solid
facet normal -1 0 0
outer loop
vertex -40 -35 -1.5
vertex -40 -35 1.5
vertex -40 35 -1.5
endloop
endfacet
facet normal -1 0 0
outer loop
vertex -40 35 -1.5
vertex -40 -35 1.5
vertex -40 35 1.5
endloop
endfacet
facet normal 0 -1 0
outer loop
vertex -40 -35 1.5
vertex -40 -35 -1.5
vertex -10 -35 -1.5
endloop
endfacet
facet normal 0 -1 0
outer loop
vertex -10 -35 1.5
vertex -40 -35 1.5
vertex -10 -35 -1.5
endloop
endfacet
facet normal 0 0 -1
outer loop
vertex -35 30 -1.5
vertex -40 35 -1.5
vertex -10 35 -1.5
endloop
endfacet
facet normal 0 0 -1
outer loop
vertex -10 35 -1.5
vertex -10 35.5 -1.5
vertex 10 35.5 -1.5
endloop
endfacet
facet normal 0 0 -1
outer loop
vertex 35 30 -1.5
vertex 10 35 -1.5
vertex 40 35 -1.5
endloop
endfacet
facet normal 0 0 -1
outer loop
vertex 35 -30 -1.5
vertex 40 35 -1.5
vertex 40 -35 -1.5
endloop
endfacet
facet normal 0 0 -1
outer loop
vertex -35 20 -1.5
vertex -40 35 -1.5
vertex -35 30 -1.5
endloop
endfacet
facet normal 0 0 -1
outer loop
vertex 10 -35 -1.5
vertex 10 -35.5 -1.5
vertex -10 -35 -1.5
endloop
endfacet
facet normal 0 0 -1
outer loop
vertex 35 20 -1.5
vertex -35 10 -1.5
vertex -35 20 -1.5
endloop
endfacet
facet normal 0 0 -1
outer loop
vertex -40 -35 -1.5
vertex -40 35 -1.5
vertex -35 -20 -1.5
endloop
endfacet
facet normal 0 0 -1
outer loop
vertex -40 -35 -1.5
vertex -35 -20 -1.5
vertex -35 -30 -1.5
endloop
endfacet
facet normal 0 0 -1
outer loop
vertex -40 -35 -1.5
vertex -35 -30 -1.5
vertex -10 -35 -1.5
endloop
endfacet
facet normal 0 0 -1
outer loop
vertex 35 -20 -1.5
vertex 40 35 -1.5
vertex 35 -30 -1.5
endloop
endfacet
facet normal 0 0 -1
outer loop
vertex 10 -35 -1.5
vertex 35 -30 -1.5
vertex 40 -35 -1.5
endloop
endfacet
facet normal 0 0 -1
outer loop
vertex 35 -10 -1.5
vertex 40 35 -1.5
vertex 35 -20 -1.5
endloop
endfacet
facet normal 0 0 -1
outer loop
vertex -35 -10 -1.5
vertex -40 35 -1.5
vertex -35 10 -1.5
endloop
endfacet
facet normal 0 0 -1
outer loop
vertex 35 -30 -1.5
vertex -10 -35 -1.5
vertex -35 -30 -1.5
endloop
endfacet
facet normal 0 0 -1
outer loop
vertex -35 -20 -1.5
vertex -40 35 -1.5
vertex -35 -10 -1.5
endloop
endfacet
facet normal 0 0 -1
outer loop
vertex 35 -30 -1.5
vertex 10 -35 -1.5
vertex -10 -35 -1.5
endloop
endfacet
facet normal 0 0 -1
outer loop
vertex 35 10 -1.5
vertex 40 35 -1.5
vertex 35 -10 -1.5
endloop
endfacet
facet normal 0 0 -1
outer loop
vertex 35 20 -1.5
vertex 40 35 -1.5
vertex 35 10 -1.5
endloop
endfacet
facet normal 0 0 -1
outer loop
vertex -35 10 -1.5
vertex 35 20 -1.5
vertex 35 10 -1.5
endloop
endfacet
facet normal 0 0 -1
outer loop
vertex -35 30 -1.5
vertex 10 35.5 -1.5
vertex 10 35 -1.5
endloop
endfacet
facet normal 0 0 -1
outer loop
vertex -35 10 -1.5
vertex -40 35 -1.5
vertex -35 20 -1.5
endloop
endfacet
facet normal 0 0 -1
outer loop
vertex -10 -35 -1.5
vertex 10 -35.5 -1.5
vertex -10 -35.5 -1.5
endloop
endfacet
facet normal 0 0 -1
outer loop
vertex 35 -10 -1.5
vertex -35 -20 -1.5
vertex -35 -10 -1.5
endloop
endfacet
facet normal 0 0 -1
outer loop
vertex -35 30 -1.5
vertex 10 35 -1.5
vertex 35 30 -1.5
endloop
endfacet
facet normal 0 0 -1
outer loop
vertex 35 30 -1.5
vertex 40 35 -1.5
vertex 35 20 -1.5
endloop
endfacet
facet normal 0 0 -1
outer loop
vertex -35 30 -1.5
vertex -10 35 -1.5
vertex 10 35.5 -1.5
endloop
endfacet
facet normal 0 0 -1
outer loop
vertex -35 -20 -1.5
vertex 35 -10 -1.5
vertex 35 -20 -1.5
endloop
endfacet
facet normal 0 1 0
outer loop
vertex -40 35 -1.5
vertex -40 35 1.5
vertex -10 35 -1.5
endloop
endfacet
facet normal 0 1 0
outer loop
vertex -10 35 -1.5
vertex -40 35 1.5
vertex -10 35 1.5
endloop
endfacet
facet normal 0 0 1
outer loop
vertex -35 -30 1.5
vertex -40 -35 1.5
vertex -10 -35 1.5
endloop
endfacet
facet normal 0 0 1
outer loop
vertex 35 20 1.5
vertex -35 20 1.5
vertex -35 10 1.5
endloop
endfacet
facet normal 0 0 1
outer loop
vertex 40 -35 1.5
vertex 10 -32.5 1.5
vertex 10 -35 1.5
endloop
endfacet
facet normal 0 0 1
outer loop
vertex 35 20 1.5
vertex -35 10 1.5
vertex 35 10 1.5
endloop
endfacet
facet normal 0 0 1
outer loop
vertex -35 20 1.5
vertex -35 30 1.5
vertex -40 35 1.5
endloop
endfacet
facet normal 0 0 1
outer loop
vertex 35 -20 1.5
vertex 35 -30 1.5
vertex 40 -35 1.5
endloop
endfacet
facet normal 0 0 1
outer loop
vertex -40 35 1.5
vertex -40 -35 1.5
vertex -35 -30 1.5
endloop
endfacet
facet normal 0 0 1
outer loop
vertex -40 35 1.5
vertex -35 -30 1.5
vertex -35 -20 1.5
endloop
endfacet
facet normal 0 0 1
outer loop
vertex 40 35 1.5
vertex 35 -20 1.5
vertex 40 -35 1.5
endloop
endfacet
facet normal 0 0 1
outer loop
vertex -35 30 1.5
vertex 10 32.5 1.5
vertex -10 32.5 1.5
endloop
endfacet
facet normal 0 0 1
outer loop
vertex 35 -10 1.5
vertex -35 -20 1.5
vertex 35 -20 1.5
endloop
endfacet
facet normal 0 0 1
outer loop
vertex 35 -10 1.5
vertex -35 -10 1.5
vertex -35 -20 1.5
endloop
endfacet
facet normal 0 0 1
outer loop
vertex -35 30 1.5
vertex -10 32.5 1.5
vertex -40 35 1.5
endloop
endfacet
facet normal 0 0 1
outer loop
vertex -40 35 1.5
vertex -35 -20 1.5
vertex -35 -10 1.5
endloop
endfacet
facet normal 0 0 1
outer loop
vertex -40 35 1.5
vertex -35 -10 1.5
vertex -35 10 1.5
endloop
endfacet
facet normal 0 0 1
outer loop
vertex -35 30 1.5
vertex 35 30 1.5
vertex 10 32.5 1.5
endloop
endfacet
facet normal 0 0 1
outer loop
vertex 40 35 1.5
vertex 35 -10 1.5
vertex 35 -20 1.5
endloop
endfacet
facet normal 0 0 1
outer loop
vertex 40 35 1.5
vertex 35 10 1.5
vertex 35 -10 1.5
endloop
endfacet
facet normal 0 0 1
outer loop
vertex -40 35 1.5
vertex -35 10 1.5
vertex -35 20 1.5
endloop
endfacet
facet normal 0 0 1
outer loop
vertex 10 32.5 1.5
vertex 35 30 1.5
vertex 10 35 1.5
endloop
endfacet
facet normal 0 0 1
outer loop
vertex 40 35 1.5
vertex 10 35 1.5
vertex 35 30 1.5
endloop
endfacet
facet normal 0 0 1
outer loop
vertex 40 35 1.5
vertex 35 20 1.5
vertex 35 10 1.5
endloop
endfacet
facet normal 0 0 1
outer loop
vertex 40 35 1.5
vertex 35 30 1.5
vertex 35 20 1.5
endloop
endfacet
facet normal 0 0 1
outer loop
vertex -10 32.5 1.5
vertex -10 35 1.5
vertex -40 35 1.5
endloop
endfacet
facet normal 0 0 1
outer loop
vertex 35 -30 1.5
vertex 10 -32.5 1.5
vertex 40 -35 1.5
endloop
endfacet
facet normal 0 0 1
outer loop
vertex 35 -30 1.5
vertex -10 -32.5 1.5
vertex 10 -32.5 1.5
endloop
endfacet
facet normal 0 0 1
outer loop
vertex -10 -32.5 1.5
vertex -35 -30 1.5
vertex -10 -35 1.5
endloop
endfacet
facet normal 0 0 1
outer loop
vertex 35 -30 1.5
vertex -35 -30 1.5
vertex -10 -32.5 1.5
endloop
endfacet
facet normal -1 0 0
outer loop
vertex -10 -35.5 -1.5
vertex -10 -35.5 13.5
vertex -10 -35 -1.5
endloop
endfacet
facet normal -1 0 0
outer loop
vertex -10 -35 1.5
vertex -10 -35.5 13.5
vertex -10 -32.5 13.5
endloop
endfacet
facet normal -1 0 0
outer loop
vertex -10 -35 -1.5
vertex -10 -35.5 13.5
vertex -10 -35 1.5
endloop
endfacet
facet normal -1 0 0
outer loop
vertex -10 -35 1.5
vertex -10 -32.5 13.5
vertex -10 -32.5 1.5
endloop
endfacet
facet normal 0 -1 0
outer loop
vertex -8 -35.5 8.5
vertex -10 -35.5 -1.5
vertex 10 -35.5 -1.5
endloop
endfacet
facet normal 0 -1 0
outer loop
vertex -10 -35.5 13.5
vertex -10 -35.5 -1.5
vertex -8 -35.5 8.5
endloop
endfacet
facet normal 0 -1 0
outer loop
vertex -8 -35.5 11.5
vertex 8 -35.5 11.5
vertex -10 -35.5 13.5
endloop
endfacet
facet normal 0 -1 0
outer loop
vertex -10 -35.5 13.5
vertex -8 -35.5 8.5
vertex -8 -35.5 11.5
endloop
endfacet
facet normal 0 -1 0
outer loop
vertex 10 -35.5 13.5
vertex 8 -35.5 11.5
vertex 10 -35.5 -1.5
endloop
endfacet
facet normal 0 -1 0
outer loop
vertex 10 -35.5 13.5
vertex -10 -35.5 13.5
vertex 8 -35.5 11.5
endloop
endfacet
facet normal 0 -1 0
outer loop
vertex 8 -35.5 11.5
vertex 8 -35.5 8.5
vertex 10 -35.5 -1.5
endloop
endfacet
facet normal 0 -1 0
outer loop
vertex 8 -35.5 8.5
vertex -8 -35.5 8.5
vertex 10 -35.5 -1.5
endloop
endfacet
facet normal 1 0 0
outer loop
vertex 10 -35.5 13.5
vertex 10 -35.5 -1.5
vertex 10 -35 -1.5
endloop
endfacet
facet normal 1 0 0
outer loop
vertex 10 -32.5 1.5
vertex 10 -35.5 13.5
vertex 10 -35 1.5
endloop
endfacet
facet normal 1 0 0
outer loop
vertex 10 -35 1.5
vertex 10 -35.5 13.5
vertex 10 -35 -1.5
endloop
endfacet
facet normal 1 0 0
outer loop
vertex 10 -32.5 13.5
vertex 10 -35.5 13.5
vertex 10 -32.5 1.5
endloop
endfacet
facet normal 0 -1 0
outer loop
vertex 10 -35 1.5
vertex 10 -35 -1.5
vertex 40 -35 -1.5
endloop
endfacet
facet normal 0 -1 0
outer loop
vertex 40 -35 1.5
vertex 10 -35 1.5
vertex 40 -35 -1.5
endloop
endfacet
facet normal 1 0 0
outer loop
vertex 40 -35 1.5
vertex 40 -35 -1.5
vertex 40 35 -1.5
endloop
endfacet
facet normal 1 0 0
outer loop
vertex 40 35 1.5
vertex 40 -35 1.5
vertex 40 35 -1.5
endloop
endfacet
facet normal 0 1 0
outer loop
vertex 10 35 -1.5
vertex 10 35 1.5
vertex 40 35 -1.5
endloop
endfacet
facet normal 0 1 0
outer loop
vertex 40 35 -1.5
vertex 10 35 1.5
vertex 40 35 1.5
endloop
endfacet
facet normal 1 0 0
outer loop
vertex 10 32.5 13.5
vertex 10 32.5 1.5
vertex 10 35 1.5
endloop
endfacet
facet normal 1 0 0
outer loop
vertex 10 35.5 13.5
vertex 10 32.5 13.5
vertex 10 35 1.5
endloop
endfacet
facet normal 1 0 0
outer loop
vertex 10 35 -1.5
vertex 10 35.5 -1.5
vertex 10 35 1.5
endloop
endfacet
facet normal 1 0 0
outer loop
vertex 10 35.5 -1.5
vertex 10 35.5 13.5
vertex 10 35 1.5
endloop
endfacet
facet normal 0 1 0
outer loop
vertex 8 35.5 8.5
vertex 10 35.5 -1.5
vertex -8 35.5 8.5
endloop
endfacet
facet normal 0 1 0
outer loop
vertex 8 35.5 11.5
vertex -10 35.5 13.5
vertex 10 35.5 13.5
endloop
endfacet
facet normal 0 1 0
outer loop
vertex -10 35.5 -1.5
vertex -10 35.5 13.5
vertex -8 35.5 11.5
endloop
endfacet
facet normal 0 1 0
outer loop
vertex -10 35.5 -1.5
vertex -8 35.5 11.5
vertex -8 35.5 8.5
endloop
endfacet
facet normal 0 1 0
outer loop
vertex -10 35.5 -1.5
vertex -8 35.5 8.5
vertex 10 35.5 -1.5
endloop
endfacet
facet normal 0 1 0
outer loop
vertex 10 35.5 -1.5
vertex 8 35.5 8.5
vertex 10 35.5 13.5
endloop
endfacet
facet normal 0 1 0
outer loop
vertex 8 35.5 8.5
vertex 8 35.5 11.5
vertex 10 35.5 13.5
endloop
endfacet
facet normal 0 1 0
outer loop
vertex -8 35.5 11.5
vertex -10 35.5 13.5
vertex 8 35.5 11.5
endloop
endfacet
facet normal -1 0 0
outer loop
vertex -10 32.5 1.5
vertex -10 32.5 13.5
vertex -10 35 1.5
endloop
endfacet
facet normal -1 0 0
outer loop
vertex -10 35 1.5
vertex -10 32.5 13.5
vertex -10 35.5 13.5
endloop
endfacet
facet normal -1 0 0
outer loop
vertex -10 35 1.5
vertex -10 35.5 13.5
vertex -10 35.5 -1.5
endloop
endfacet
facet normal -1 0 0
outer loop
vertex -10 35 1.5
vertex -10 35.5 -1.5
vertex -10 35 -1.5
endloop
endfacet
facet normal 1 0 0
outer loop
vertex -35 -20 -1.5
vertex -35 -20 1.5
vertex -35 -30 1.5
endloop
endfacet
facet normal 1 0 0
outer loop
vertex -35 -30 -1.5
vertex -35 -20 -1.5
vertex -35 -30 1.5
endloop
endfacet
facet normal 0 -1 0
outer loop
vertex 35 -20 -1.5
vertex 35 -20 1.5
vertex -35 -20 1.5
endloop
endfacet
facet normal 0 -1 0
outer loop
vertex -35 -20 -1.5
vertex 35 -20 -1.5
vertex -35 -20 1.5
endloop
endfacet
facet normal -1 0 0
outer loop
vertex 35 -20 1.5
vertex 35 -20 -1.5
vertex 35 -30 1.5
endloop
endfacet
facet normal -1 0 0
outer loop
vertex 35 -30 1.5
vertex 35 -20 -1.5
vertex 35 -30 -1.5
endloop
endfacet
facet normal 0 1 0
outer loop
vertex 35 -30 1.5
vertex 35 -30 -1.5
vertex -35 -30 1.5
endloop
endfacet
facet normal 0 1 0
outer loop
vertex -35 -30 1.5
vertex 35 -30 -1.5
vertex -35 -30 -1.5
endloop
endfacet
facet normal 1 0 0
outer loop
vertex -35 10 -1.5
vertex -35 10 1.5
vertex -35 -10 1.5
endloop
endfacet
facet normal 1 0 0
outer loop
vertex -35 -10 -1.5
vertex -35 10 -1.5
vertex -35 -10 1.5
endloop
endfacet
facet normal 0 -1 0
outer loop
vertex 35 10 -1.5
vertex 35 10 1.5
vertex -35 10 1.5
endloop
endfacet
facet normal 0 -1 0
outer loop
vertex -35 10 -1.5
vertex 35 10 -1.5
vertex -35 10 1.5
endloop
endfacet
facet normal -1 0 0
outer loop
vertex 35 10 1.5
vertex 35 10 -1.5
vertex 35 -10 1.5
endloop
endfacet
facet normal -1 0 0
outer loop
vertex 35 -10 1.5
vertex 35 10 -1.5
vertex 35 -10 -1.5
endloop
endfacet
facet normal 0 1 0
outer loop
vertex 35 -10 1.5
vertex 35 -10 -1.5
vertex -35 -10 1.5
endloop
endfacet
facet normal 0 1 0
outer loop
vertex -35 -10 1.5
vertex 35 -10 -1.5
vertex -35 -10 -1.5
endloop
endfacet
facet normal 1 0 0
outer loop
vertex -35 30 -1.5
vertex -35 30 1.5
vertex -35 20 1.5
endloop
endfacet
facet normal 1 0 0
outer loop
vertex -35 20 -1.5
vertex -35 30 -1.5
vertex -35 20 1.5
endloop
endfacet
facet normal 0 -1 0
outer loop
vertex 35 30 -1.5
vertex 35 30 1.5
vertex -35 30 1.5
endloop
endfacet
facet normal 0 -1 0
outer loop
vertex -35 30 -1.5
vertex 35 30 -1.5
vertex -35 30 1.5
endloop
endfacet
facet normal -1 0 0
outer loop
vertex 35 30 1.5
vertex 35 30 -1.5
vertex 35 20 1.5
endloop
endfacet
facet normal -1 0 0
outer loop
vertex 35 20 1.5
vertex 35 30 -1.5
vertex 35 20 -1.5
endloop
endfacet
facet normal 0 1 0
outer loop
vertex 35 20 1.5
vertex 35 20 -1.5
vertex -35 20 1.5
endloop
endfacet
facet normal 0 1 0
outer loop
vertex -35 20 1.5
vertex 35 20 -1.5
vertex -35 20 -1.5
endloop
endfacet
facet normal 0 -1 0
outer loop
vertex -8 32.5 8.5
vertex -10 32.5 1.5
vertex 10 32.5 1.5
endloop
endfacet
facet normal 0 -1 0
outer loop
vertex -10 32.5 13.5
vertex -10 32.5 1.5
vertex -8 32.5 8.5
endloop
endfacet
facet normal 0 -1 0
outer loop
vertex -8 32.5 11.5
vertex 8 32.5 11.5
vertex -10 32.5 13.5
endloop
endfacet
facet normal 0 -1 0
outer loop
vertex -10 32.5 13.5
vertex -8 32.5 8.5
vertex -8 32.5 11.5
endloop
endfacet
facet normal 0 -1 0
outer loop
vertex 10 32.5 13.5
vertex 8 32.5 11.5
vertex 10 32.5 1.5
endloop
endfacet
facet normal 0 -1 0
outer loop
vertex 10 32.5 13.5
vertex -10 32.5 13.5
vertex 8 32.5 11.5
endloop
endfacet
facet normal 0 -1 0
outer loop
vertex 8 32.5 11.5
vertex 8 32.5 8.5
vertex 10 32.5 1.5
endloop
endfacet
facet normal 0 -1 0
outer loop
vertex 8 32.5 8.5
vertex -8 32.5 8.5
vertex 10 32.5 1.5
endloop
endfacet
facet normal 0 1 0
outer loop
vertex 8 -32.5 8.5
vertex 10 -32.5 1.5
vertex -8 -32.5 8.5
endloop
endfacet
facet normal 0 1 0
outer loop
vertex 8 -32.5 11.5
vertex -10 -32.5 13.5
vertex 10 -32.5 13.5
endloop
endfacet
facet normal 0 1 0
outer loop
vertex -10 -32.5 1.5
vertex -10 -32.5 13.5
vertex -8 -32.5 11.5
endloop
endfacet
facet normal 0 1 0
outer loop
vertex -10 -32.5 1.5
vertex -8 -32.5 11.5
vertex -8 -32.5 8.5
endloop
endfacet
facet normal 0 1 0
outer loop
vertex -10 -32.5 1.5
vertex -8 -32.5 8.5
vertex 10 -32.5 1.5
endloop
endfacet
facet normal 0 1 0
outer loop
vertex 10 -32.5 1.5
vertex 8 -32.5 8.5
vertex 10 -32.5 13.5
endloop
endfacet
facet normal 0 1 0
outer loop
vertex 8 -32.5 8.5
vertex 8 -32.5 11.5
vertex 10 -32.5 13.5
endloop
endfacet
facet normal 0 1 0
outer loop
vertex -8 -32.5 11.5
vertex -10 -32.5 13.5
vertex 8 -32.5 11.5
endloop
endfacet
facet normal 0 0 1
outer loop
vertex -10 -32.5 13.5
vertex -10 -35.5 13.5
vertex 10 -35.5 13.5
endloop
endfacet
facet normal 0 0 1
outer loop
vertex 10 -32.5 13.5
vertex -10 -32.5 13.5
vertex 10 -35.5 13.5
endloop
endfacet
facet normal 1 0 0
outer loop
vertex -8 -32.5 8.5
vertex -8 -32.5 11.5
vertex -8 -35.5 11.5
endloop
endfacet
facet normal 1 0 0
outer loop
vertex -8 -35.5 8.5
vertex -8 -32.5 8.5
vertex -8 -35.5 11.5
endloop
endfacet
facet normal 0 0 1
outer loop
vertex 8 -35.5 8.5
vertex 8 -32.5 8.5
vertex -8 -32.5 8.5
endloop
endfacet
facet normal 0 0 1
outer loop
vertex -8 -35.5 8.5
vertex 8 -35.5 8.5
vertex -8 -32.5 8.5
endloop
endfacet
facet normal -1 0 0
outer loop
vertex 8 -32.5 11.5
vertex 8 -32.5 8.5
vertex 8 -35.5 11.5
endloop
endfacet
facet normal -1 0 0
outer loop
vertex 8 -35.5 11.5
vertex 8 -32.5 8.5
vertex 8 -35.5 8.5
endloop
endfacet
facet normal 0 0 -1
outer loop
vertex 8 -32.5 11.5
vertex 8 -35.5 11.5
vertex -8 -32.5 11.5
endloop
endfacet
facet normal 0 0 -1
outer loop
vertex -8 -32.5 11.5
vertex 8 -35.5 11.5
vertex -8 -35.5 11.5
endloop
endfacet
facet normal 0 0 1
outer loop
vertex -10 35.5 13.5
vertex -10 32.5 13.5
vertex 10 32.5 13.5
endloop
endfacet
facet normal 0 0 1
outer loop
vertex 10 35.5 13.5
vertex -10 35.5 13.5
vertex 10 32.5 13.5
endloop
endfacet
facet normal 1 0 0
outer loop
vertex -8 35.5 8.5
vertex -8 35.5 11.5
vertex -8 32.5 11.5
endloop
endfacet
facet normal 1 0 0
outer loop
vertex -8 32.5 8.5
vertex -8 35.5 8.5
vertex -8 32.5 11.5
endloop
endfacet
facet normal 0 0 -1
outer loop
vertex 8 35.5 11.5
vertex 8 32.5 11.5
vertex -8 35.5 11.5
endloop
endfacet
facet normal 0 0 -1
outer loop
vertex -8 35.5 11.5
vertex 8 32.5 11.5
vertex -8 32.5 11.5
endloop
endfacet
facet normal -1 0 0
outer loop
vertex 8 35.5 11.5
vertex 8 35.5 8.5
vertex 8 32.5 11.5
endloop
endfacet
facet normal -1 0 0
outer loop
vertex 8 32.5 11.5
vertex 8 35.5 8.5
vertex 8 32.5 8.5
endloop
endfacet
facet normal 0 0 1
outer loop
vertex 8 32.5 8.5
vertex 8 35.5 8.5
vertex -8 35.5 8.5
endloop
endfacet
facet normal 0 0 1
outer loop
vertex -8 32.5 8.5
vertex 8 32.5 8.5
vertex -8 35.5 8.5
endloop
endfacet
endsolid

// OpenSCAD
difference()
{
	cube([80,70,3], center=true);

	translate([0,25,0])
	cube([70,10,5], center= true);

	translate([0,0,0])
	cube([70,20,5], center= true);

	translate([0,-25,0])
	cube([70,10,5], center= true);
}

translate([0,-34,6])
{
	difference()
	{
		cube([20,3,15], center= true);
		translate([0,0,4])
		cube([16,5,3], center= true);
	}
}

translate([0,34,6])
{
	difference()
	{
		cube([20,3,15], center= true);
		translate([0,0,4])
		cube([16,5,3], center= true);
	}
}
